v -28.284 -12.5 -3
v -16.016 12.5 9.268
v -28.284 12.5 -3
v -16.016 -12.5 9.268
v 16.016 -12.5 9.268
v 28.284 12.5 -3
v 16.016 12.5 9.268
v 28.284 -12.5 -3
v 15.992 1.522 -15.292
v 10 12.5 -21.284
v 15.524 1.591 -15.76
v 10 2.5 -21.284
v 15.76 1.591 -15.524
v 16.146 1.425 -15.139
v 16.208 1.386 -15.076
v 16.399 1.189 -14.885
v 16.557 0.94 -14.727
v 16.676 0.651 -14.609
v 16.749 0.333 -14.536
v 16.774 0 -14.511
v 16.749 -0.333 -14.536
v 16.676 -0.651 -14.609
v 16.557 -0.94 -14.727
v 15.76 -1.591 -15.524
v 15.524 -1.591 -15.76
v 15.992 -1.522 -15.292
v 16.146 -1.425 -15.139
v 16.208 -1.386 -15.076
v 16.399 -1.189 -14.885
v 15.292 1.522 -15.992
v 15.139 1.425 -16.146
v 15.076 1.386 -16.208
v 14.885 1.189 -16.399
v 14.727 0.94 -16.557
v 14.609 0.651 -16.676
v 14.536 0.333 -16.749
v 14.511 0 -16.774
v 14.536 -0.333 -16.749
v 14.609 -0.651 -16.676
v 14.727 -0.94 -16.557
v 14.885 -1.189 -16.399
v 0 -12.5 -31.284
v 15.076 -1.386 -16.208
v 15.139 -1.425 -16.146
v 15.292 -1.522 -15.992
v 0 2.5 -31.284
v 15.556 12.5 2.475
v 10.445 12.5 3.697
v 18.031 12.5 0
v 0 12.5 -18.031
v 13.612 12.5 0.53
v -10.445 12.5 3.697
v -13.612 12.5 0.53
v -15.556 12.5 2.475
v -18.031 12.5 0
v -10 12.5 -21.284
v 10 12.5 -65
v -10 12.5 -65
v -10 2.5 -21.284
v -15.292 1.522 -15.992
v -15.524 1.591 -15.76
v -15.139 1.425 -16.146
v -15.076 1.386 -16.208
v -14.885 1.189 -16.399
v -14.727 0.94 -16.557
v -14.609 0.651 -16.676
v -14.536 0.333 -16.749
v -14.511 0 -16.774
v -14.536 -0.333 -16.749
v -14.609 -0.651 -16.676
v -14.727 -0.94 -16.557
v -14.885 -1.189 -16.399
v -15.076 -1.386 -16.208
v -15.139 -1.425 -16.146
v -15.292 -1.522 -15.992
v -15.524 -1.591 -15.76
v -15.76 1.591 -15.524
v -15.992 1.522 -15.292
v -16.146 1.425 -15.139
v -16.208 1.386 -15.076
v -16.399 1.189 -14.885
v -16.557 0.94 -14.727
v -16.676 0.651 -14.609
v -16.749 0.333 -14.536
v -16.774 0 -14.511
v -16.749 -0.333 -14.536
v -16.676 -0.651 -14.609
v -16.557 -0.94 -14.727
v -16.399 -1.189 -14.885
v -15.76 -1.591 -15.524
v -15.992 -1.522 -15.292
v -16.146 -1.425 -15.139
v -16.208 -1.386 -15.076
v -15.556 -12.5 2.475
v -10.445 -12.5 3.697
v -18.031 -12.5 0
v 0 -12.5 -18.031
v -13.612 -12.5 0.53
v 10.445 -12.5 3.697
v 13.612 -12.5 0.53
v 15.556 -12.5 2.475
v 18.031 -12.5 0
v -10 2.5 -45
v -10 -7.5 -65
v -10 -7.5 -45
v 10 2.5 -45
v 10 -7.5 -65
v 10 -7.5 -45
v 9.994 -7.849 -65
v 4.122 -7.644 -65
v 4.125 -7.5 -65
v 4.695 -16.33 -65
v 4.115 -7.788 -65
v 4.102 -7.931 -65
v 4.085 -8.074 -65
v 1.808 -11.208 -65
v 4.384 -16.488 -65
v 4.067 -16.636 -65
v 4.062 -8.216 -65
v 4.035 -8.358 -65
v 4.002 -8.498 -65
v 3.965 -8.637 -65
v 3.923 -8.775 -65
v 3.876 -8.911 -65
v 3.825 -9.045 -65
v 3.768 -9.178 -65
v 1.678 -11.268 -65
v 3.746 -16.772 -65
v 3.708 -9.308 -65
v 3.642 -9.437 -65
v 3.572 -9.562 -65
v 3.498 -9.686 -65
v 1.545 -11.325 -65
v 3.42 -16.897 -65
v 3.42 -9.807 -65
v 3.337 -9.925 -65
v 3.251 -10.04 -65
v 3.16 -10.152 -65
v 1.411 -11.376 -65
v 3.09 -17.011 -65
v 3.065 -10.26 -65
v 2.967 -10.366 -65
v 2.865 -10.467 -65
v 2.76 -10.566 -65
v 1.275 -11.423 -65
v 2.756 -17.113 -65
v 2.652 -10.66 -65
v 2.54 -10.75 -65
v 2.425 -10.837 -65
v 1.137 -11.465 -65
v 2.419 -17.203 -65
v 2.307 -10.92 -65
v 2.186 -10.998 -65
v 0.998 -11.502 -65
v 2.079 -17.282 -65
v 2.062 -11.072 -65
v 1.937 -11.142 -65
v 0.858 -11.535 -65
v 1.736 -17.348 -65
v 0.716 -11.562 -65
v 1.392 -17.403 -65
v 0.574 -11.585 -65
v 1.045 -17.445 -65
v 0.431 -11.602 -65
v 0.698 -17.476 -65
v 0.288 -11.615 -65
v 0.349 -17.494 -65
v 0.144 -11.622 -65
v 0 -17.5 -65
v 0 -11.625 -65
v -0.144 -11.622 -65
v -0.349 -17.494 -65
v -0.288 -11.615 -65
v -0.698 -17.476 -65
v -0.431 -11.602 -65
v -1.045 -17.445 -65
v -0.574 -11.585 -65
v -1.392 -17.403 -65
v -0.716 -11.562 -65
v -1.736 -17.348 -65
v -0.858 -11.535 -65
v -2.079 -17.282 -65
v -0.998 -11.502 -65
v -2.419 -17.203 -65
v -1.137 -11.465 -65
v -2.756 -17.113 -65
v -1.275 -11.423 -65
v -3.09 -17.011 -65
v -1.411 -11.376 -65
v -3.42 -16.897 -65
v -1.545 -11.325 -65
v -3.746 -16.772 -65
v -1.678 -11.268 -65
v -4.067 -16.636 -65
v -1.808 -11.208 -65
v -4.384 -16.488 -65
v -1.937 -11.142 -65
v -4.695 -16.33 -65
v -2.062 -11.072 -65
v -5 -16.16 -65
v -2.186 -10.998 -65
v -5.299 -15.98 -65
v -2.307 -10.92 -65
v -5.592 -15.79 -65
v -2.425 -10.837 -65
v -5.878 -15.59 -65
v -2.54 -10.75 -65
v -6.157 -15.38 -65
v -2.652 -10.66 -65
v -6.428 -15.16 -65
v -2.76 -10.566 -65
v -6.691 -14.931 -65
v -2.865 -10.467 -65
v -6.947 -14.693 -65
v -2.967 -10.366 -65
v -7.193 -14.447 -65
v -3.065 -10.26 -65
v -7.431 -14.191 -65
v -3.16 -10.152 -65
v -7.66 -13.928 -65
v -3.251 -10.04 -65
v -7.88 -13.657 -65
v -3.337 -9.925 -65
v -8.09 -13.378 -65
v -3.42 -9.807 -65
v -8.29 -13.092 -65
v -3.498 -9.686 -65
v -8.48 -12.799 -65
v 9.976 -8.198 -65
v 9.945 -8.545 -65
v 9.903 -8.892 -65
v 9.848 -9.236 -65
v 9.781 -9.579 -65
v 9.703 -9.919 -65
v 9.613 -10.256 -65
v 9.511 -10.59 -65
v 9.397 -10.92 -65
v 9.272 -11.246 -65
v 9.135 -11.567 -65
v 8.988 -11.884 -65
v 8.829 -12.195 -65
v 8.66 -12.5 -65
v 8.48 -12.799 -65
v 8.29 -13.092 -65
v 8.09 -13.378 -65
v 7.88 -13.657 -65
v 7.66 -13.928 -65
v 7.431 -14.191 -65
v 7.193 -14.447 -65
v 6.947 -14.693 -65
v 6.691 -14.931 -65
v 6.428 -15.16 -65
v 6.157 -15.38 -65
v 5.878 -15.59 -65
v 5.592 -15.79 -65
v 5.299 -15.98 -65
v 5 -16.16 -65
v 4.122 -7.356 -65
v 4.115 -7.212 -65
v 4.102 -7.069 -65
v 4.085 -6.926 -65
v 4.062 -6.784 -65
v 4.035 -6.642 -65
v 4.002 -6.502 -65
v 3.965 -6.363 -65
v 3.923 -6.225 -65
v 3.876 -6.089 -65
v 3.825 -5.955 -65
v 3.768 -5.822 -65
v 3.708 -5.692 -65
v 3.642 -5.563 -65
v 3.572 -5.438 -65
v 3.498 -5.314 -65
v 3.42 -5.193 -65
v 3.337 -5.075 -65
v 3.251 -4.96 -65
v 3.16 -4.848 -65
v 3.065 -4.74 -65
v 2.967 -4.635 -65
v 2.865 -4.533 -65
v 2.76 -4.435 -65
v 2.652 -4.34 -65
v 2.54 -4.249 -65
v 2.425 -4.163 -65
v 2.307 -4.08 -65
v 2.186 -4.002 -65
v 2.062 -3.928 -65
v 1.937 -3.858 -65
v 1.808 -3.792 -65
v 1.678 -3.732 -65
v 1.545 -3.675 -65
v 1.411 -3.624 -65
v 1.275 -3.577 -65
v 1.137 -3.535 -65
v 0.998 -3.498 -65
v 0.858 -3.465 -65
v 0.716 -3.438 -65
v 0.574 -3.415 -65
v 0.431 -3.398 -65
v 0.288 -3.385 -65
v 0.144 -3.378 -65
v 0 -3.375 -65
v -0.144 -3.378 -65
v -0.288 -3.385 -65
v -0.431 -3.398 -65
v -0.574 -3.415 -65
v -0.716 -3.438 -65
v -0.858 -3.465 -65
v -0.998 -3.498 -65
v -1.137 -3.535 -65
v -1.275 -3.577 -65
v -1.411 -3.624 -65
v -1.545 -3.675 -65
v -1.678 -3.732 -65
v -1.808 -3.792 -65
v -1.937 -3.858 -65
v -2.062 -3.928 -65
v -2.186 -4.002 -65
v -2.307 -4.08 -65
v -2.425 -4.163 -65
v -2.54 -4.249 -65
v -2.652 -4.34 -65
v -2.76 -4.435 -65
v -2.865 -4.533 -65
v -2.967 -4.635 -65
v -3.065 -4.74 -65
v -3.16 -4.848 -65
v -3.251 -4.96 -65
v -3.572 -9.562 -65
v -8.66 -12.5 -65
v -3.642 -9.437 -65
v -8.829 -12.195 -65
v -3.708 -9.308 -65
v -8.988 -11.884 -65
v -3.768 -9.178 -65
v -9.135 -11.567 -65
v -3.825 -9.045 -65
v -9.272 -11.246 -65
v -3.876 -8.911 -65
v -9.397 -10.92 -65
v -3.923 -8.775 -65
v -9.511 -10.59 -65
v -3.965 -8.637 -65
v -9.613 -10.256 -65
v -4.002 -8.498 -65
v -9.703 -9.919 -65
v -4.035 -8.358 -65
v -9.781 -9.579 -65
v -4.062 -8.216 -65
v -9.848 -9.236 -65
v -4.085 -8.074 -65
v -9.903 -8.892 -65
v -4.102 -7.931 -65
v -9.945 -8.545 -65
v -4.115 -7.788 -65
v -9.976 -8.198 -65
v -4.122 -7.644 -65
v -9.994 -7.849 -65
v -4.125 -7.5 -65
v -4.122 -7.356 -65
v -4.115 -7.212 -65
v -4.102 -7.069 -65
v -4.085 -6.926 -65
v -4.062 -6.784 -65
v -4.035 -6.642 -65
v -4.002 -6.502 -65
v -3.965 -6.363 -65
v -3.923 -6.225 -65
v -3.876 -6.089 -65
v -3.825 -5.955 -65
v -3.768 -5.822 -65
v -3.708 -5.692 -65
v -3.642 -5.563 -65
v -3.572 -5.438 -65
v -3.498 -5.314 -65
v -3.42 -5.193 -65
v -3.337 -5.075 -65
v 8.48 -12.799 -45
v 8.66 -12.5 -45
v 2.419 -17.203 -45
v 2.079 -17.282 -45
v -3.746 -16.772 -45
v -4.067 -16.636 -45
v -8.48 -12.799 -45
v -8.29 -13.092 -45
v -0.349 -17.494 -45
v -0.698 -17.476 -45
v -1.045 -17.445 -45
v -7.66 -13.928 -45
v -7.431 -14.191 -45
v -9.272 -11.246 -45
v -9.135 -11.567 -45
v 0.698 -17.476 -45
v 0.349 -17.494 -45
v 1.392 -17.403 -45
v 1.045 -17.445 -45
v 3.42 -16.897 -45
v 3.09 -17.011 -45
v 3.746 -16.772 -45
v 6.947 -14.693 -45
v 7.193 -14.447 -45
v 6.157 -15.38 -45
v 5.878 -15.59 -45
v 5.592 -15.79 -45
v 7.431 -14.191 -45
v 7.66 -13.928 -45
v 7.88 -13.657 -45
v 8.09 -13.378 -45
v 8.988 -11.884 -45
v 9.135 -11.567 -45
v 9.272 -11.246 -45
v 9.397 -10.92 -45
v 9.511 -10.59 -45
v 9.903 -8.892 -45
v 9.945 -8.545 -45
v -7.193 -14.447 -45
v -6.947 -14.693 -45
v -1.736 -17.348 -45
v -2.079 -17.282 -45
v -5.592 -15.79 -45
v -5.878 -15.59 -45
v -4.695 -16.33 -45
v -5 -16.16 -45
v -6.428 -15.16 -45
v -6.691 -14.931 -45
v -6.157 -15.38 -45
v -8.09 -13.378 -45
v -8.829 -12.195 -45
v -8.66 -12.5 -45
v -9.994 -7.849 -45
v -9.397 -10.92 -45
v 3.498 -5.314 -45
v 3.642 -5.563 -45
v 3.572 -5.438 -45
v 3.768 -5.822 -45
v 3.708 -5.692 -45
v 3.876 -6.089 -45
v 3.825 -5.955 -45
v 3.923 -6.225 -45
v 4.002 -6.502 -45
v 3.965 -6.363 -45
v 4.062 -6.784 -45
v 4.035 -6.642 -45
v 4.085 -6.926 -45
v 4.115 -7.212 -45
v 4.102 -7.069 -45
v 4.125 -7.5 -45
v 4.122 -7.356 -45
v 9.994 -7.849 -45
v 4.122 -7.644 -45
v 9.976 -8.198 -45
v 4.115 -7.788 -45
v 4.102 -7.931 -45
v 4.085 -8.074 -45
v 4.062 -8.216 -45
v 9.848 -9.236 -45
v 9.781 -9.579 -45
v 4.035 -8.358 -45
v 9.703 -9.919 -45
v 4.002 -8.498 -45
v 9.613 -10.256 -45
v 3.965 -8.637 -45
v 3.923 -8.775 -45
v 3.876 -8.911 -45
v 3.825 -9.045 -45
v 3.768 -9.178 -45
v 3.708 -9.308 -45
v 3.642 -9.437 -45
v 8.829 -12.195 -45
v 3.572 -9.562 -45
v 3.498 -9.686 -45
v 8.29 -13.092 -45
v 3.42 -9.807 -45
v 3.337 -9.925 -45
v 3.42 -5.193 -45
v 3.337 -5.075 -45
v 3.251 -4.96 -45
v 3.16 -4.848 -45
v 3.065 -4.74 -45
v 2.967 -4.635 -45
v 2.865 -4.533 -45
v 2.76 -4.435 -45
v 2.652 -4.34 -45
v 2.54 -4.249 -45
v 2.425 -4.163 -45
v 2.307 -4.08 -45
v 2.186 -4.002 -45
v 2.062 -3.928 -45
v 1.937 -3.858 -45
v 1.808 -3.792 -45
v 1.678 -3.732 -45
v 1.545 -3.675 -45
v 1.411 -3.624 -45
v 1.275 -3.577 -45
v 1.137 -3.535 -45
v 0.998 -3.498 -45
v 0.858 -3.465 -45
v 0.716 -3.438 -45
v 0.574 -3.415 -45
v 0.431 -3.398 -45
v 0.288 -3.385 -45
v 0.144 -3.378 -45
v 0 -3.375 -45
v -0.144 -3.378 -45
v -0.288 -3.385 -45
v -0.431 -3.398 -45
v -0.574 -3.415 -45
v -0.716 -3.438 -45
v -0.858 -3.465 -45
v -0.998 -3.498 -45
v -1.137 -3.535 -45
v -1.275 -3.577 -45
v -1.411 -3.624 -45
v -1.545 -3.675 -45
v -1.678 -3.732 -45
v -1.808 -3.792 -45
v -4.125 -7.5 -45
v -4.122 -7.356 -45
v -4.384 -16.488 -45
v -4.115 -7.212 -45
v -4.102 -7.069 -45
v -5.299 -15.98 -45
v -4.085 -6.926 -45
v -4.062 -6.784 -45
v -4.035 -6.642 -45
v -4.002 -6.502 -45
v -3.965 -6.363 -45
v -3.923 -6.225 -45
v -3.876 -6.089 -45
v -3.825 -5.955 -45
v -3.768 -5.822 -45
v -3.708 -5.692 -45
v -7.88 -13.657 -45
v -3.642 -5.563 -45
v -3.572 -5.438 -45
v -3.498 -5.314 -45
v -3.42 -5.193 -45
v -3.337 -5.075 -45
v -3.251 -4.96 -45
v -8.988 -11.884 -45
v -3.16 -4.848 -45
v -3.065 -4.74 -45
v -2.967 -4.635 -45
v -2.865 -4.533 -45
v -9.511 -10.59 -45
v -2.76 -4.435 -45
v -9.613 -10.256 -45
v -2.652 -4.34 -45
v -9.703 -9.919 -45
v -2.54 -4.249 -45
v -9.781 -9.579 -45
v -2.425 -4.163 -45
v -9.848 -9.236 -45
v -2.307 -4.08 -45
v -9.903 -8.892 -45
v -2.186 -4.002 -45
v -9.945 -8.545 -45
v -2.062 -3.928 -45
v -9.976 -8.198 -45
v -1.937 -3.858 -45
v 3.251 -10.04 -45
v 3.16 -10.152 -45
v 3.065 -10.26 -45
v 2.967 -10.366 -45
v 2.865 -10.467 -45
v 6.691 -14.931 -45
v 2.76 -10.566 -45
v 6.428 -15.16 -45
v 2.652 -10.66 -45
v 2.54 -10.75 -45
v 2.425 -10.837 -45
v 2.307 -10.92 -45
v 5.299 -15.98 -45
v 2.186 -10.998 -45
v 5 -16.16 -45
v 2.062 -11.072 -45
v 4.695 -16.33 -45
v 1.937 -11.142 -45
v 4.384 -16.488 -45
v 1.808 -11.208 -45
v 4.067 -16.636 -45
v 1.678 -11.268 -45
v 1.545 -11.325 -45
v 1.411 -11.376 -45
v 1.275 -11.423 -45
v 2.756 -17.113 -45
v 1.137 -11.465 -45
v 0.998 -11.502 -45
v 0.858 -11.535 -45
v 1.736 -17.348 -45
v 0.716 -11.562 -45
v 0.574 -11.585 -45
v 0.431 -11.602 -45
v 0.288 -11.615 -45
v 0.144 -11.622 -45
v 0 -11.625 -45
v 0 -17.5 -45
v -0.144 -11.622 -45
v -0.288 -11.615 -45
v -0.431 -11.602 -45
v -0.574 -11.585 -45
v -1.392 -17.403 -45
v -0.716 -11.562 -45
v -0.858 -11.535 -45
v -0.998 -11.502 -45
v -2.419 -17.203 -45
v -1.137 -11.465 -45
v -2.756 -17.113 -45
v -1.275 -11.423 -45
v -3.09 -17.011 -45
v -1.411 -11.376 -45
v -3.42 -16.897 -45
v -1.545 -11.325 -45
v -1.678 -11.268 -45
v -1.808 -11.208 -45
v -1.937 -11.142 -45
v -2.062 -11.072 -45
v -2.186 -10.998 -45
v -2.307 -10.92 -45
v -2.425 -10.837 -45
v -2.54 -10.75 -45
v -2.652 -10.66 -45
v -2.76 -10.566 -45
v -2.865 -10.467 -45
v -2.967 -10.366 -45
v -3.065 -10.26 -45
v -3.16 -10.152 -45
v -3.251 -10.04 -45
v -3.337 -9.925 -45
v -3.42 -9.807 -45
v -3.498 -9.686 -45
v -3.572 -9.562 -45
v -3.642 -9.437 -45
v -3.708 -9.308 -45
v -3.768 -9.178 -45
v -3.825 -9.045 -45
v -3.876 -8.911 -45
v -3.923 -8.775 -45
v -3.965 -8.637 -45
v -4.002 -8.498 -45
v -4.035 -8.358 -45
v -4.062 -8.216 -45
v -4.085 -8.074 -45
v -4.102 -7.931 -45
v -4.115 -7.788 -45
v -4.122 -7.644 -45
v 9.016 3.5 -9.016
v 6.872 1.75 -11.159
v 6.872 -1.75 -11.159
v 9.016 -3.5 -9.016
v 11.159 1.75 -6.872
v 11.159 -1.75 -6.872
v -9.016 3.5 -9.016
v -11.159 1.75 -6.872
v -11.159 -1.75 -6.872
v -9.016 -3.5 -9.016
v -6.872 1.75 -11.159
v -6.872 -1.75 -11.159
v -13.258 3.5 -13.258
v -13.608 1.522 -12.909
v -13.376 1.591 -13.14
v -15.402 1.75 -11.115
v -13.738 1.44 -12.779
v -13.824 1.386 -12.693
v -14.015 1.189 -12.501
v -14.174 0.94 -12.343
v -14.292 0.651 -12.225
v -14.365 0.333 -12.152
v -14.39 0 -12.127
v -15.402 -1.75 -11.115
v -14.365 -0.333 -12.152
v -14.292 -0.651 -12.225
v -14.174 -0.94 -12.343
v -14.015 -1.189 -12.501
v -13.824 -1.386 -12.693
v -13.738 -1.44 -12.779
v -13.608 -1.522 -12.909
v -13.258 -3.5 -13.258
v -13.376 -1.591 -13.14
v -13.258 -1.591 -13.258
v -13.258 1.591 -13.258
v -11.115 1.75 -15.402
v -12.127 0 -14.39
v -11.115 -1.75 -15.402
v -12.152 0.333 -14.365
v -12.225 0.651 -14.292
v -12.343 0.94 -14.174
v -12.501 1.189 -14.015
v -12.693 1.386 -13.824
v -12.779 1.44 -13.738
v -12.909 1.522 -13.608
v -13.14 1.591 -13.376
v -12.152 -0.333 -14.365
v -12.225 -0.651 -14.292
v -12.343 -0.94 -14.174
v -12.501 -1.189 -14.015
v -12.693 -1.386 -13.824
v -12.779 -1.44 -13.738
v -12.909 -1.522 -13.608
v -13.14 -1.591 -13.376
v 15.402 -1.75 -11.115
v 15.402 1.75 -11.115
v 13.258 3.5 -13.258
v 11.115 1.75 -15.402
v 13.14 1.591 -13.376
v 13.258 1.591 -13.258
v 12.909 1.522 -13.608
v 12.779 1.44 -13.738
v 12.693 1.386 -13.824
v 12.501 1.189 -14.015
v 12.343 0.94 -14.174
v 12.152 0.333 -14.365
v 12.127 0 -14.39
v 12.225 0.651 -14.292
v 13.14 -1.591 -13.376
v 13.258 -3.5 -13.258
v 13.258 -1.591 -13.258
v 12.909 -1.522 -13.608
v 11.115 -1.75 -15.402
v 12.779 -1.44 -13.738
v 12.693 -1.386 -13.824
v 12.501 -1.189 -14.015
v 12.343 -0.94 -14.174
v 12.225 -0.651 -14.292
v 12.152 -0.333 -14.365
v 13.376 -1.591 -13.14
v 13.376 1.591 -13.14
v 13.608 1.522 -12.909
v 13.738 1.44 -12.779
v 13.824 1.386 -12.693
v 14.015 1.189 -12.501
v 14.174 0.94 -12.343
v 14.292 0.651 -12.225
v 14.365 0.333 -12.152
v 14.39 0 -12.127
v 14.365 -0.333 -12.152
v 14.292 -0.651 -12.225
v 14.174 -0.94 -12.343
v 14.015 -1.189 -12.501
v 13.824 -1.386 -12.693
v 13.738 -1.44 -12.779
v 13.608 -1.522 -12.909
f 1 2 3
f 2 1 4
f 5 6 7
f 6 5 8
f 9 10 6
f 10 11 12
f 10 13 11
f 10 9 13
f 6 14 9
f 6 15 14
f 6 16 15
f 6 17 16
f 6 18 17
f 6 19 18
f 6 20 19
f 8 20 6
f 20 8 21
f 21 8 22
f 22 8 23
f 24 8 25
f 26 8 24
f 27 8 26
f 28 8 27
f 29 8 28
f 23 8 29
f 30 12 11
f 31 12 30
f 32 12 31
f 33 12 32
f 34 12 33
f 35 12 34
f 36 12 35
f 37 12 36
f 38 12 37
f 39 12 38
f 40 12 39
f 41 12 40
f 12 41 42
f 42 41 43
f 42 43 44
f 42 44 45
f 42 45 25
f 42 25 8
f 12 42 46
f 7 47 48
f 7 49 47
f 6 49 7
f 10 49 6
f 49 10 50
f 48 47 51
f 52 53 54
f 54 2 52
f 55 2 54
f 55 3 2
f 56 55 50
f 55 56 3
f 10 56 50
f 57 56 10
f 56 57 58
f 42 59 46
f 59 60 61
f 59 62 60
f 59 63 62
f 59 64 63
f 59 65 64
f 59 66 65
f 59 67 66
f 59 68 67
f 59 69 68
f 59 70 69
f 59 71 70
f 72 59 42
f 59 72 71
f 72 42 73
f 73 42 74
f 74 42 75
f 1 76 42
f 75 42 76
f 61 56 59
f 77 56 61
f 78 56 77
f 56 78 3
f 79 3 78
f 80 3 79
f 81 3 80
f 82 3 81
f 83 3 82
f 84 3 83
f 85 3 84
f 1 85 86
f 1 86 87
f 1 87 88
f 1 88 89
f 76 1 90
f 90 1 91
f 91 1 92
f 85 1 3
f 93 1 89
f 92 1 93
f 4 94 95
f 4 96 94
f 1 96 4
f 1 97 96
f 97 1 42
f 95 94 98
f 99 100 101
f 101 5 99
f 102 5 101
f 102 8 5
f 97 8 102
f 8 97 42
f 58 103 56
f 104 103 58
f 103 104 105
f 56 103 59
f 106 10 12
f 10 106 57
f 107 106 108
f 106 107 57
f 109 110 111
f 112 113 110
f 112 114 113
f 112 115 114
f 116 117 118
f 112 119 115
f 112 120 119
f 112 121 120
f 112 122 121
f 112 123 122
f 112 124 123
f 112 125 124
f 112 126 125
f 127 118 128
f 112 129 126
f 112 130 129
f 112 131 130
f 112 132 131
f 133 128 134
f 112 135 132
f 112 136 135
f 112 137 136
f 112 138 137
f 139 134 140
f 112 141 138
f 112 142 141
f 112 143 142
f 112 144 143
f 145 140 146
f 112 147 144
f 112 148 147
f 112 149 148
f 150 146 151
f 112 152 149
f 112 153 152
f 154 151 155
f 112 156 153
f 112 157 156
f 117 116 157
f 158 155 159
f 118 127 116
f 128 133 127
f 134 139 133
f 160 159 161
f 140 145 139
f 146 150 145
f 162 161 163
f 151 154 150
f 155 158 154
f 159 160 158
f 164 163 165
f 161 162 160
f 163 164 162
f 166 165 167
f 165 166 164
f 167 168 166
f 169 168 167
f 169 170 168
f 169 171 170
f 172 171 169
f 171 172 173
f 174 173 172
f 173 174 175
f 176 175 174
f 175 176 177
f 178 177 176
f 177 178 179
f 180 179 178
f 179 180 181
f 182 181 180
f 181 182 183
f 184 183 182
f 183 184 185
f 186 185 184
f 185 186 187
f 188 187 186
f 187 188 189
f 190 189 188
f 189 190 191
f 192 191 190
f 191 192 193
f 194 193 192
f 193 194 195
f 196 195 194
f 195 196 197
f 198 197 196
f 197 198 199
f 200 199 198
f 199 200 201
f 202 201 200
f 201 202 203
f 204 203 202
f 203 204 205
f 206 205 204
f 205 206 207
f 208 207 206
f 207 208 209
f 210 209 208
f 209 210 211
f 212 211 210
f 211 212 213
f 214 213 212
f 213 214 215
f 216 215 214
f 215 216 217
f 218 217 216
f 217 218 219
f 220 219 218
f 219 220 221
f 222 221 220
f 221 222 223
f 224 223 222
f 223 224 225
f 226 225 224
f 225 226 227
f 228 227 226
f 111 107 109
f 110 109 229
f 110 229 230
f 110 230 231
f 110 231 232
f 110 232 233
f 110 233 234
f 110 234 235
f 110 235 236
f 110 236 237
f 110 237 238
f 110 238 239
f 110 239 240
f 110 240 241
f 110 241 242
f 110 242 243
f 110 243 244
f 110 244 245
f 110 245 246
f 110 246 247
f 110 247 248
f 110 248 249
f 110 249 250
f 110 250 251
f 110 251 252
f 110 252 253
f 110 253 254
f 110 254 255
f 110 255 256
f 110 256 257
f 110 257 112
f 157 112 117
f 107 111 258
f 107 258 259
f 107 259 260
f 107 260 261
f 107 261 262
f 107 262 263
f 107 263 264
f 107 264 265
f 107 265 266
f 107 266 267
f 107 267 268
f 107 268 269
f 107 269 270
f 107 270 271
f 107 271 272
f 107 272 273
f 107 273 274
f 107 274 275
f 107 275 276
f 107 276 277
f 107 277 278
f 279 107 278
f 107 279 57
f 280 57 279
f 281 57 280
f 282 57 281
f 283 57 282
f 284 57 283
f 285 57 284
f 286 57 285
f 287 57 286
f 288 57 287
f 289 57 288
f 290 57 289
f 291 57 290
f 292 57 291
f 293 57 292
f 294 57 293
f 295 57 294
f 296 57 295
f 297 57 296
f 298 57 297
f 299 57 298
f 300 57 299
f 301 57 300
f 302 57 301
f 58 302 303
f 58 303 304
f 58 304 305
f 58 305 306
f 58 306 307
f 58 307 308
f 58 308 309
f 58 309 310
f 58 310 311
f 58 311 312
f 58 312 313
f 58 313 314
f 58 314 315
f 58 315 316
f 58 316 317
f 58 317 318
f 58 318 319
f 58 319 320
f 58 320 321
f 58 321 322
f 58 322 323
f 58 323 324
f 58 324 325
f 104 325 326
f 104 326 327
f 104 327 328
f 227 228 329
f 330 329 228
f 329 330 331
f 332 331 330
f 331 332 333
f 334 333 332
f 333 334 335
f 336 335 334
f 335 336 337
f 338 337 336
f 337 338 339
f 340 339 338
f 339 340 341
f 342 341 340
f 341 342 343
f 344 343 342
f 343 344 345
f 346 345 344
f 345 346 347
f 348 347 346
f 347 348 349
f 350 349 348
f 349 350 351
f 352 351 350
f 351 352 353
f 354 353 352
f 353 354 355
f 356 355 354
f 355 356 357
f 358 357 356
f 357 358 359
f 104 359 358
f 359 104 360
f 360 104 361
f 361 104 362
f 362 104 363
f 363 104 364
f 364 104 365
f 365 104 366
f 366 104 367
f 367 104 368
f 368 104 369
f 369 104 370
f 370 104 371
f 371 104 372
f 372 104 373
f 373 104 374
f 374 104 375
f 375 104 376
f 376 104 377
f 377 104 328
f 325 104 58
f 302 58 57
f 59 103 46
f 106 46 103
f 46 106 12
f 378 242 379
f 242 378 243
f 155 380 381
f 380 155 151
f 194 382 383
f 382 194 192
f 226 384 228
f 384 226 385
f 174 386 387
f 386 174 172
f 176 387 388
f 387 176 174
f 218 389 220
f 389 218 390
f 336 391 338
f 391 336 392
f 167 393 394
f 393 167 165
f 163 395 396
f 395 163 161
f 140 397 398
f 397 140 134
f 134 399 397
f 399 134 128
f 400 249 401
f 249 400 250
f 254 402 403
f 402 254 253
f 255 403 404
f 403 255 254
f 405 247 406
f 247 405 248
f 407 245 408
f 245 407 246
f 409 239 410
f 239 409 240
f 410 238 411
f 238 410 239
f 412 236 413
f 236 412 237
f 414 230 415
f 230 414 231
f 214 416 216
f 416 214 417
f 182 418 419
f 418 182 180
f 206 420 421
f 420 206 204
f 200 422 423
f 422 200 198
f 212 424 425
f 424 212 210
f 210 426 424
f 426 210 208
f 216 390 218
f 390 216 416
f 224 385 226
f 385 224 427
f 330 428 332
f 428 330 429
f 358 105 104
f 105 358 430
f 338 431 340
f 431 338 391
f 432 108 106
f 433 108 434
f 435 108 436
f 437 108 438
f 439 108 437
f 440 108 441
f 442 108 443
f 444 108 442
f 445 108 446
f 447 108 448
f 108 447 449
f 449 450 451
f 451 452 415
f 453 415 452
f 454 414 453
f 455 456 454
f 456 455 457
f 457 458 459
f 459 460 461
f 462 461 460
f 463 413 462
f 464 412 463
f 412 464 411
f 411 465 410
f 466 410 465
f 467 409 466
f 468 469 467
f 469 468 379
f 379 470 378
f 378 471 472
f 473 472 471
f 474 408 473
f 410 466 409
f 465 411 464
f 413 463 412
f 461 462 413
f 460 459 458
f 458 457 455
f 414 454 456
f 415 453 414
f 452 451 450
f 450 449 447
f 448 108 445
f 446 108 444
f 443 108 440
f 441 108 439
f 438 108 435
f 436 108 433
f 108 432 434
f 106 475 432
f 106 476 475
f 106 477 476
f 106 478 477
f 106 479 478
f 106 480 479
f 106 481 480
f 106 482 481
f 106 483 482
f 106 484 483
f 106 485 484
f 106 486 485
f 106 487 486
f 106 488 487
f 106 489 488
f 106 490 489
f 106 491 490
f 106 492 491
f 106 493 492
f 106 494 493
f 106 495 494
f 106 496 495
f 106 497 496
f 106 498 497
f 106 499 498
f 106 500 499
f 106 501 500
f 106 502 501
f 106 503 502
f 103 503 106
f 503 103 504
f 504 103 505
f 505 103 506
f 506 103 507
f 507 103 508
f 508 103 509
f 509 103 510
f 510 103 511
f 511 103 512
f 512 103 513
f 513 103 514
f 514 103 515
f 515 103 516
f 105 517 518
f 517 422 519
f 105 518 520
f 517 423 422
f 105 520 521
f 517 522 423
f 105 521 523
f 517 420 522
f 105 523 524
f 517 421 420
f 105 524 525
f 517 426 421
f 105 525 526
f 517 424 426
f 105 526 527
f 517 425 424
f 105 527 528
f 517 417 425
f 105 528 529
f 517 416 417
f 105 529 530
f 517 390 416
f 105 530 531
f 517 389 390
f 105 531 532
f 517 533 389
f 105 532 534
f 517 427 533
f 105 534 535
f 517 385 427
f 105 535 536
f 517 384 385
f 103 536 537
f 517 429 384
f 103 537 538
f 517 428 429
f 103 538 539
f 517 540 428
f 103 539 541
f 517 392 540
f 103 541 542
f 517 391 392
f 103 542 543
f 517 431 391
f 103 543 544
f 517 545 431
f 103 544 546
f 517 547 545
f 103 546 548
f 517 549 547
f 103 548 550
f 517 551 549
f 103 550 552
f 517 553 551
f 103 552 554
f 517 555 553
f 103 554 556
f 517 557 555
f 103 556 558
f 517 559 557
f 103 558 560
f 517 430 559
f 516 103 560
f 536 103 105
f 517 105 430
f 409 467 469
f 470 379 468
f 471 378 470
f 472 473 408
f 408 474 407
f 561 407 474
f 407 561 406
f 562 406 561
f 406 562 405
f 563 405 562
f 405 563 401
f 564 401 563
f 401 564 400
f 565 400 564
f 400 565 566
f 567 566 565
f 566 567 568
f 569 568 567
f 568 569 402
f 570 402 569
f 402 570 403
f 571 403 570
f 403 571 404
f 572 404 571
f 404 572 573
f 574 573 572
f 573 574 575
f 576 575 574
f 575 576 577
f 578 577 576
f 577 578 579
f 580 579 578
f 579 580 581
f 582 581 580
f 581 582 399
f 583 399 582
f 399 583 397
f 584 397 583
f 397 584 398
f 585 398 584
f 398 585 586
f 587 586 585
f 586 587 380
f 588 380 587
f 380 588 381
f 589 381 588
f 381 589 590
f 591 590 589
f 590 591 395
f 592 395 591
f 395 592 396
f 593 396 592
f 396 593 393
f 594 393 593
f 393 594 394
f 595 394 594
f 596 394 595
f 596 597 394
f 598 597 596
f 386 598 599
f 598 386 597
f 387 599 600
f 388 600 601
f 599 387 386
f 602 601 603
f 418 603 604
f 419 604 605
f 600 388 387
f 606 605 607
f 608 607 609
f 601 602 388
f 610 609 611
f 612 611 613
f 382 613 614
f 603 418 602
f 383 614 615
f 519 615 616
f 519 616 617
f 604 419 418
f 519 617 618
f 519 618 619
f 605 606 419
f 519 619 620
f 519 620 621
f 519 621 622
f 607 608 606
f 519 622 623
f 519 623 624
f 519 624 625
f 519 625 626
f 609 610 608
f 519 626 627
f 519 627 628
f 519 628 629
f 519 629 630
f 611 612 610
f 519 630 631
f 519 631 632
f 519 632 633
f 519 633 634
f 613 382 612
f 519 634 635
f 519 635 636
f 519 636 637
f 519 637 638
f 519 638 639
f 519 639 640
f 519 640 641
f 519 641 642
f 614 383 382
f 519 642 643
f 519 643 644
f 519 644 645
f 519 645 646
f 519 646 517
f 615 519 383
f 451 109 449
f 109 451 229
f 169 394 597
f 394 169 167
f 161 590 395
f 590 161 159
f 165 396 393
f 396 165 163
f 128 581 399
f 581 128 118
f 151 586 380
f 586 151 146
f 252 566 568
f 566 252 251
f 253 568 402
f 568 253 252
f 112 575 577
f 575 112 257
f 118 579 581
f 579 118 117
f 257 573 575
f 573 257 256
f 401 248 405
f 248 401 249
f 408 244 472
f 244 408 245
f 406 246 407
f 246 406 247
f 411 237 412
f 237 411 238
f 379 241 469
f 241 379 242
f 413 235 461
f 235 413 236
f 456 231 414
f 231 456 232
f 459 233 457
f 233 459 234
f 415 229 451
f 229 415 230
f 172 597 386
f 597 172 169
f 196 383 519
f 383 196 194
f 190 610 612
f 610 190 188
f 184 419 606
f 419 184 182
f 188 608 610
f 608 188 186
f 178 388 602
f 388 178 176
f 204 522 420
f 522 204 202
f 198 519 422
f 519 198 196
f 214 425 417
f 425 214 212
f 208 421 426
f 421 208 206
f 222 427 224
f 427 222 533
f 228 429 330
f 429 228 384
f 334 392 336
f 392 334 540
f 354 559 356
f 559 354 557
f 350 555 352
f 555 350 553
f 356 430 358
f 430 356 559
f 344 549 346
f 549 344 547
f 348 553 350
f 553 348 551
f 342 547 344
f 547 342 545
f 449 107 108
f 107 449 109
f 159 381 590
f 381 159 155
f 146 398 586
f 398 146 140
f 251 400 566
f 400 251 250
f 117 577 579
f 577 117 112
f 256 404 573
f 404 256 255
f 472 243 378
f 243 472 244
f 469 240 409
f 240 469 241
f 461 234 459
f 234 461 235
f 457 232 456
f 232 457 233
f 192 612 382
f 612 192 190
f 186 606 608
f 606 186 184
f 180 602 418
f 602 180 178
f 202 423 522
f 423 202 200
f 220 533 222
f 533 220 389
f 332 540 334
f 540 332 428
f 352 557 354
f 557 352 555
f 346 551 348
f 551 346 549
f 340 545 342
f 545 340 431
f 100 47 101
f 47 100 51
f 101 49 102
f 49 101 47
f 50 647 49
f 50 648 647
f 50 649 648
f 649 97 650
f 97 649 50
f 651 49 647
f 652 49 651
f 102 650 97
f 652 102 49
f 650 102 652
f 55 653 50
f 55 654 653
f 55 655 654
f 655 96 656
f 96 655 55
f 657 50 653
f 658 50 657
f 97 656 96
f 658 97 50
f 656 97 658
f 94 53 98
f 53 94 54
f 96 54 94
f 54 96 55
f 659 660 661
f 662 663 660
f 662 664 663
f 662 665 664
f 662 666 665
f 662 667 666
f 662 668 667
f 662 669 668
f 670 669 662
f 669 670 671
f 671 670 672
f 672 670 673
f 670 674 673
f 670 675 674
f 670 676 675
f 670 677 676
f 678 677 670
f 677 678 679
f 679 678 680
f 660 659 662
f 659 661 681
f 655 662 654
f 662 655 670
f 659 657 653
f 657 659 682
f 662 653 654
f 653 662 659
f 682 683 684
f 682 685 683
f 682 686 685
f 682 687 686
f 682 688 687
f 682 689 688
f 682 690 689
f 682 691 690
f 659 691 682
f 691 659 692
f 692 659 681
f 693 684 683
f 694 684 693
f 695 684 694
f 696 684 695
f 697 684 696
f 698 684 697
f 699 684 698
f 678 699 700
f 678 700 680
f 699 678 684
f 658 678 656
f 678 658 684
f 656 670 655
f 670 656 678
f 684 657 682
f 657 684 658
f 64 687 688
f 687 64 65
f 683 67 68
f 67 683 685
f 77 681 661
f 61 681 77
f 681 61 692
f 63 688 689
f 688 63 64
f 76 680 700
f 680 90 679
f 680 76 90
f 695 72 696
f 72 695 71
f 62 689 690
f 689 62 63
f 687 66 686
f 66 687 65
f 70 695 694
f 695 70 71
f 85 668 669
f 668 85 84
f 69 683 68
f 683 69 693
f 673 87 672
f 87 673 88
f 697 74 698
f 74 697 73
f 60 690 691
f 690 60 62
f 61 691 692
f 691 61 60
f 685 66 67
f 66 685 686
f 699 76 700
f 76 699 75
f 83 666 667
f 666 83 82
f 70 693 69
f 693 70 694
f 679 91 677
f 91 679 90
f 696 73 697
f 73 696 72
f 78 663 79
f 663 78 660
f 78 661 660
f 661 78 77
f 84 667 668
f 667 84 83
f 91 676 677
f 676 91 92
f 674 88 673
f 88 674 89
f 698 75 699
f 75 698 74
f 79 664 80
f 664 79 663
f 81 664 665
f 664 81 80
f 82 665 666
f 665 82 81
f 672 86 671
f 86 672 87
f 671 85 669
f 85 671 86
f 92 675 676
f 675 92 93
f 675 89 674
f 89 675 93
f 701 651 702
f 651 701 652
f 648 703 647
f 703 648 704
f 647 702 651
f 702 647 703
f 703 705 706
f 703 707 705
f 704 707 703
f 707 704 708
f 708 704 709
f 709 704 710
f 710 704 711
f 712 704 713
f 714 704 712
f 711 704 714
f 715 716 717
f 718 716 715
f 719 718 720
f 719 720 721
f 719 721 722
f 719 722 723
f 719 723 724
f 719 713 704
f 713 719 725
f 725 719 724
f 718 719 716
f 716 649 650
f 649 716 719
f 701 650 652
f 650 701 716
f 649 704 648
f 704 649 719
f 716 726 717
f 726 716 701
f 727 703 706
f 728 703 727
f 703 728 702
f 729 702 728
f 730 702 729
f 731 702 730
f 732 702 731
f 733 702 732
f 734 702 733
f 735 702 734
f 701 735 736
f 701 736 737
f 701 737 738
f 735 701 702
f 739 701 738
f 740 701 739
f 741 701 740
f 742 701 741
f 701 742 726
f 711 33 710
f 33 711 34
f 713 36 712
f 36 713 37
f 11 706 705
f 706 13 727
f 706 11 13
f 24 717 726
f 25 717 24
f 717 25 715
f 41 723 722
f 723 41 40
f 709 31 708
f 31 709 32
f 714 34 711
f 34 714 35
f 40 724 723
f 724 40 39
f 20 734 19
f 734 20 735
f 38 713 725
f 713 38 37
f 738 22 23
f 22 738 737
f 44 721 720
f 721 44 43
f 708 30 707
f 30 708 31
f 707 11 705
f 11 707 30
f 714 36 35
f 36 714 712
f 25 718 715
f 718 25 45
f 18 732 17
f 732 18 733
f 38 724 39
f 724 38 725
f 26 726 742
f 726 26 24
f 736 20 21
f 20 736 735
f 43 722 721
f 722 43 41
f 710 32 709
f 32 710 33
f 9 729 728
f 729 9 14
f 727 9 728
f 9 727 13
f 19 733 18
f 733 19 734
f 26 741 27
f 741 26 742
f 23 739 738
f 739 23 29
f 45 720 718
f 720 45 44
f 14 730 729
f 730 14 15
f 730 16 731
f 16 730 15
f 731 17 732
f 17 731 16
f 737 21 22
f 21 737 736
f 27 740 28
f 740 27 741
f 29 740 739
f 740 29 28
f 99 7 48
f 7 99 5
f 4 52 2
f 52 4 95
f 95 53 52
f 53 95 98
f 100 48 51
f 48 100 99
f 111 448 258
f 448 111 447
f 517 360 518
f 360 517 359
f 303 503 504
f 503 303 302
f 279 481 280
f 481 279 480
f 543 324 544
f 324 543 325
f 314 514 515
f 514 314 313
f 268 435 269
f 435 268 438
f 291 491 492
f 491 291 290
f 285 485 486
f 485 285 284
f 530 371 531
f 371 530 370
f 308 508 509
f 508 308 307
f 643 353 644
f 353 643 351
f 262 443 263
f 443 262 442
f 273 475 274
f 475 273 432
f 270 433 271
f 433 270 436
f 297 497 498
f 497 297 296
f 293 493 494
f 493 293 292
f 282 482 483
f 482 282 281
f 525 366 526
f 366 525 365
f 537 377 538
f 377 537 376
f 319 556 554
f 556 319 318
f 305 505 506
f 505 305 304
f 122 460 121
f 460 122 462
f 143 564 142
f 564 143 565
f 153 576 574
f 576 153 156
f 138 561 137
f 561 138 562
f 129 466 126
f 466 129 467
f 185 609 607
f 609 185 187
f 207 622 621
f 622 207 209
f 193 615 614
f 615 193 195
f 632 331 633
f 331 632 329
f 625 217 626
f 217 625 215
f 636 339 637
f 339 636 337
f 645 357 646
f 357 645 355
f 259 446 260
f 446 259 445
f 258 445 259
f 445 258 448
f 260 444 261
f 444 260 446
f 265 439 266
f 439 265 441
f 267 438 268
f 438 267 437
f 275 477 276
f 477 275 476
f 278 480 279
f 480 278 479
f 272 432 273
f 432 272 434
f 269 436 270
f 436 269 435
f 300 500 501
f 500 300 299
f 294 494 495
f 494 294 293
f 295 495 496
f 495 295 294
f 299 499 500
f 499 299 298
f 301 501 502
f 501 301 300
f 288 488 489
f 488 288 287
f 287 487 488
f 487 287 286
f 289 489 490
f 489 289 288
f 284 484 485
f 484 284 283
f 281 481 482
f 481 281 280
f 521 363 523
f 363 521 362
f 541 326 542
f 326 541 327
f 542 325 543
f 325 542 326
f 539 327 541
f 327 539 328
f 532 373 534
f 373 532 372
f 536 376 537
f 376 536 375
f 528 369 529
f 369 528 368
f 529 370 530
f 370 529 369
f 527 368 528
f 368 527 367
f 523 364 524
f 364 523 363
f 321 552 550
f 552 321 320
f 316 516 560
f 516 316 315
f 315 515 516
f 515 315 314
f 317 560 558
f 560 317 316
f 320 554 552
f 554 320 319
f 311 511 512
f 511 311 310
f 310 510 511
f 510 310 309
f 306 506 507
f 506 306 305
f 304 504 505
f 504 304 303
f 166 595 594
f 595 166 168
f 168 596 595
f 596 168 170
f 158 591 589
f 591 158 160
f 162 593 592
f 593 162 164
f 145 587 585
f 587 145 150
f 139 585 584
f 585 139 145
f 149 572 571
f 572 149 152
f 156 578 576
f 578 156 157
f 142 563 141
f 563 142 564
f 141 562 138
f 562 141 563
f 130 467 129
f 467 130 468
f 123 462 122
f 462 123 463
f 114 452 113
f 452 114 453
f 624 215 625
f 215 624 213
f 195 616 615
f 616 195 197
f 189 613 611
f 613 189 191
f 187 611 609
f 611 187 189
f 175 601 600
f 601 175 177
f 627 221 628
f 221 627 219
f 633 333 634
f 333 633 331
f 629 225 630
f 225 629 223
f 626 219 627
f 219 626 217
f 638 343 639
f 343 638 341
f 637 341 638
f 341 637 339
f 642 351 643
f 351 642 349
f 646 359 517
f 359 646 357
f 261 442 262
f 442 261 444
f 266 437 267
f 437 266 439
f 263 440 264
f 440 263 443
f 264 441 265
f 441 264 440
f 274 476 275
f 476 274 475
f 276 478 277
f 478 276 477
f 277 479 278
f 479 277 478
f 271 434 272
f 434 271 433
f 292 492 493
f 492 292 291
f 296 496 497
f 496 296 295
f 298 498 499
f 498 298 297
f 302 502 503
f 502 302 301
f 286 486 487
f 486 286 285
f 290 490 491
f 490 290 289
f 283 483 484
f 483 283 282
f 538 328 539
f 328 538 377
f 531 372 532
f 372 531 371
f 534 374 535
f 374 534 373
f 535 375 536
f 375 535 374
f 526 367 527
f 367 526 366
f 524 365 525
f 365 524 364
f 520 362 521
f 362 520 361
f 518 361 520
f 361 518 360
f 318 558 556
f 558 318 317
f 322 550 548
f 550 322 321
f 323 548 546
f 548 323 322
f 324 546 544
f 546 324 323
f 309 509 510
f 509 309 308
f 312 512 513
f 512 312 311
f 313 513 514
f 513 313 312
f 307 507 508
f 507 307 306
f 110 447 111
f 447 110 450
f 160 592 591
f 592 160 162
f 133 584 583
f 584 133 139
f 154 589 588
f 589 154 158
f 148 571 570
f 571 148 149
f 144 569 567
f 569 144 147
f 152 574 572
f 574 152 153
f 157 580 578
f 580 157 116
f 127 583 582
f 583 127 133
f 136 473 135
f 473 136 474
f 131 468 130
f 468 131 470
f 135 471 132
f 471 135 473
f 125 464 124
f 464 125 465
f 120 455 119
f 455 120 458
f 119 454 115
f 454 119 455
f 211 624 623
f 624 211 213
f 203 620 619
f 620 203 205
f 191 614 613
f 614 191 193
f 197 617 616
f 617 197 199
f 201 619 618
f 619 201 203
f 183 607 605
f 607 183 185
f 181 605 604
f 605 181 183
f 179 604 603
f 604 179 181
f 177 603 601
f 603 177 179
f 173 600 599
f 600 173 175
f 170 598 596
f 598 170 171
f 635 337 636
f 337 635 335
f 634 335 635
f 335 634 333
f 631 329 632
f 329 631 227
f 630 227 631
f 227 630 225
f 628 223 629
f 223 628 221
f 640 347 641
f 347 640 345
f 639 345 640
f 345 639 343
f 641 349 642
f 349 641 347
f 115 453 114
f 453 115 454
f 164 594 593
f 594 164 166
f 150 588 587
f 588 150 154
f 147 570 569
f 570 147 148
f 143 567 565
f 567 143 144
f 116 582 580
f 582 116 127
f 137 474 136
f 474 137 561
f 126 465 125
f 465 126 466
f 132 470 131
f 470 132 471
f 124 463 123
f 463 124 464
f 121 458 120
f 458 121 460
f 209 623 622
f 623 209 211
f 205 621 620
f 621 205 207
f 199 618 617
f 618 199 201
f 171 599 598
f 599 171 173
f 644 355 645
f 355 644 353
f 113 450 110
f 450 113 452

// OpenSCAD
//cube([120,120,3], center = true);
//translate([-45,-45,0])cylinder(h = 3, r=15, $fn = 180, center = true);
//rotate_extrude(convexity = 10, $fn = A) translate([20+1.5, 0, 0])circle(d = 3, $fn = B);
//module Test(){







difference(){
    
union(){    
translate([0,0,-3]) rotate([0,45,0]) cube([35+5,25,35+5], center = true);    
    
//pillar
translate([0,7.5,-30])cube([20,10,70], center = true);    
 
//m8 holder 
translate([0,-7.5,-45-10])cylinder(h = 20, d=20, $fn = 180, center = true);   
   
//m8 holder extention
translate([0,-7.5+10,-45-10])cube([20,20,20], center = true);    

}

for(i=[0:1]) mirror([i,0,0]){
//m3 bolt
rotate([0,45,0]) translate([0,0,-9.75-6])rotate([0,0,30]) cylinder(h = 6, d=7, $fn = 6, center = true);

rotate([0,45,0]) translate([0,0,-9.75-6]) cylinder(h = 30, d=3.2, $fn = 30, center = true);

}

    
//side holes for V angle iron    
for(i=[1,3]) rotate([0,i*45,0]) translate([13.5-2.5,0,0]) cube([3.5,25.2,25.5], center = true);
    
 translate([0,0,18]) rotate([0,45,0]) cube([35,26,35], center = true);     

rotate([0,45,0])cube([20,26,20], center = true); 

//m8 hole 
translate([0,-7.5,-45-10])cylinder(h = 21, d=8.25, $fn = 180, center = true);  
    
}    


   
